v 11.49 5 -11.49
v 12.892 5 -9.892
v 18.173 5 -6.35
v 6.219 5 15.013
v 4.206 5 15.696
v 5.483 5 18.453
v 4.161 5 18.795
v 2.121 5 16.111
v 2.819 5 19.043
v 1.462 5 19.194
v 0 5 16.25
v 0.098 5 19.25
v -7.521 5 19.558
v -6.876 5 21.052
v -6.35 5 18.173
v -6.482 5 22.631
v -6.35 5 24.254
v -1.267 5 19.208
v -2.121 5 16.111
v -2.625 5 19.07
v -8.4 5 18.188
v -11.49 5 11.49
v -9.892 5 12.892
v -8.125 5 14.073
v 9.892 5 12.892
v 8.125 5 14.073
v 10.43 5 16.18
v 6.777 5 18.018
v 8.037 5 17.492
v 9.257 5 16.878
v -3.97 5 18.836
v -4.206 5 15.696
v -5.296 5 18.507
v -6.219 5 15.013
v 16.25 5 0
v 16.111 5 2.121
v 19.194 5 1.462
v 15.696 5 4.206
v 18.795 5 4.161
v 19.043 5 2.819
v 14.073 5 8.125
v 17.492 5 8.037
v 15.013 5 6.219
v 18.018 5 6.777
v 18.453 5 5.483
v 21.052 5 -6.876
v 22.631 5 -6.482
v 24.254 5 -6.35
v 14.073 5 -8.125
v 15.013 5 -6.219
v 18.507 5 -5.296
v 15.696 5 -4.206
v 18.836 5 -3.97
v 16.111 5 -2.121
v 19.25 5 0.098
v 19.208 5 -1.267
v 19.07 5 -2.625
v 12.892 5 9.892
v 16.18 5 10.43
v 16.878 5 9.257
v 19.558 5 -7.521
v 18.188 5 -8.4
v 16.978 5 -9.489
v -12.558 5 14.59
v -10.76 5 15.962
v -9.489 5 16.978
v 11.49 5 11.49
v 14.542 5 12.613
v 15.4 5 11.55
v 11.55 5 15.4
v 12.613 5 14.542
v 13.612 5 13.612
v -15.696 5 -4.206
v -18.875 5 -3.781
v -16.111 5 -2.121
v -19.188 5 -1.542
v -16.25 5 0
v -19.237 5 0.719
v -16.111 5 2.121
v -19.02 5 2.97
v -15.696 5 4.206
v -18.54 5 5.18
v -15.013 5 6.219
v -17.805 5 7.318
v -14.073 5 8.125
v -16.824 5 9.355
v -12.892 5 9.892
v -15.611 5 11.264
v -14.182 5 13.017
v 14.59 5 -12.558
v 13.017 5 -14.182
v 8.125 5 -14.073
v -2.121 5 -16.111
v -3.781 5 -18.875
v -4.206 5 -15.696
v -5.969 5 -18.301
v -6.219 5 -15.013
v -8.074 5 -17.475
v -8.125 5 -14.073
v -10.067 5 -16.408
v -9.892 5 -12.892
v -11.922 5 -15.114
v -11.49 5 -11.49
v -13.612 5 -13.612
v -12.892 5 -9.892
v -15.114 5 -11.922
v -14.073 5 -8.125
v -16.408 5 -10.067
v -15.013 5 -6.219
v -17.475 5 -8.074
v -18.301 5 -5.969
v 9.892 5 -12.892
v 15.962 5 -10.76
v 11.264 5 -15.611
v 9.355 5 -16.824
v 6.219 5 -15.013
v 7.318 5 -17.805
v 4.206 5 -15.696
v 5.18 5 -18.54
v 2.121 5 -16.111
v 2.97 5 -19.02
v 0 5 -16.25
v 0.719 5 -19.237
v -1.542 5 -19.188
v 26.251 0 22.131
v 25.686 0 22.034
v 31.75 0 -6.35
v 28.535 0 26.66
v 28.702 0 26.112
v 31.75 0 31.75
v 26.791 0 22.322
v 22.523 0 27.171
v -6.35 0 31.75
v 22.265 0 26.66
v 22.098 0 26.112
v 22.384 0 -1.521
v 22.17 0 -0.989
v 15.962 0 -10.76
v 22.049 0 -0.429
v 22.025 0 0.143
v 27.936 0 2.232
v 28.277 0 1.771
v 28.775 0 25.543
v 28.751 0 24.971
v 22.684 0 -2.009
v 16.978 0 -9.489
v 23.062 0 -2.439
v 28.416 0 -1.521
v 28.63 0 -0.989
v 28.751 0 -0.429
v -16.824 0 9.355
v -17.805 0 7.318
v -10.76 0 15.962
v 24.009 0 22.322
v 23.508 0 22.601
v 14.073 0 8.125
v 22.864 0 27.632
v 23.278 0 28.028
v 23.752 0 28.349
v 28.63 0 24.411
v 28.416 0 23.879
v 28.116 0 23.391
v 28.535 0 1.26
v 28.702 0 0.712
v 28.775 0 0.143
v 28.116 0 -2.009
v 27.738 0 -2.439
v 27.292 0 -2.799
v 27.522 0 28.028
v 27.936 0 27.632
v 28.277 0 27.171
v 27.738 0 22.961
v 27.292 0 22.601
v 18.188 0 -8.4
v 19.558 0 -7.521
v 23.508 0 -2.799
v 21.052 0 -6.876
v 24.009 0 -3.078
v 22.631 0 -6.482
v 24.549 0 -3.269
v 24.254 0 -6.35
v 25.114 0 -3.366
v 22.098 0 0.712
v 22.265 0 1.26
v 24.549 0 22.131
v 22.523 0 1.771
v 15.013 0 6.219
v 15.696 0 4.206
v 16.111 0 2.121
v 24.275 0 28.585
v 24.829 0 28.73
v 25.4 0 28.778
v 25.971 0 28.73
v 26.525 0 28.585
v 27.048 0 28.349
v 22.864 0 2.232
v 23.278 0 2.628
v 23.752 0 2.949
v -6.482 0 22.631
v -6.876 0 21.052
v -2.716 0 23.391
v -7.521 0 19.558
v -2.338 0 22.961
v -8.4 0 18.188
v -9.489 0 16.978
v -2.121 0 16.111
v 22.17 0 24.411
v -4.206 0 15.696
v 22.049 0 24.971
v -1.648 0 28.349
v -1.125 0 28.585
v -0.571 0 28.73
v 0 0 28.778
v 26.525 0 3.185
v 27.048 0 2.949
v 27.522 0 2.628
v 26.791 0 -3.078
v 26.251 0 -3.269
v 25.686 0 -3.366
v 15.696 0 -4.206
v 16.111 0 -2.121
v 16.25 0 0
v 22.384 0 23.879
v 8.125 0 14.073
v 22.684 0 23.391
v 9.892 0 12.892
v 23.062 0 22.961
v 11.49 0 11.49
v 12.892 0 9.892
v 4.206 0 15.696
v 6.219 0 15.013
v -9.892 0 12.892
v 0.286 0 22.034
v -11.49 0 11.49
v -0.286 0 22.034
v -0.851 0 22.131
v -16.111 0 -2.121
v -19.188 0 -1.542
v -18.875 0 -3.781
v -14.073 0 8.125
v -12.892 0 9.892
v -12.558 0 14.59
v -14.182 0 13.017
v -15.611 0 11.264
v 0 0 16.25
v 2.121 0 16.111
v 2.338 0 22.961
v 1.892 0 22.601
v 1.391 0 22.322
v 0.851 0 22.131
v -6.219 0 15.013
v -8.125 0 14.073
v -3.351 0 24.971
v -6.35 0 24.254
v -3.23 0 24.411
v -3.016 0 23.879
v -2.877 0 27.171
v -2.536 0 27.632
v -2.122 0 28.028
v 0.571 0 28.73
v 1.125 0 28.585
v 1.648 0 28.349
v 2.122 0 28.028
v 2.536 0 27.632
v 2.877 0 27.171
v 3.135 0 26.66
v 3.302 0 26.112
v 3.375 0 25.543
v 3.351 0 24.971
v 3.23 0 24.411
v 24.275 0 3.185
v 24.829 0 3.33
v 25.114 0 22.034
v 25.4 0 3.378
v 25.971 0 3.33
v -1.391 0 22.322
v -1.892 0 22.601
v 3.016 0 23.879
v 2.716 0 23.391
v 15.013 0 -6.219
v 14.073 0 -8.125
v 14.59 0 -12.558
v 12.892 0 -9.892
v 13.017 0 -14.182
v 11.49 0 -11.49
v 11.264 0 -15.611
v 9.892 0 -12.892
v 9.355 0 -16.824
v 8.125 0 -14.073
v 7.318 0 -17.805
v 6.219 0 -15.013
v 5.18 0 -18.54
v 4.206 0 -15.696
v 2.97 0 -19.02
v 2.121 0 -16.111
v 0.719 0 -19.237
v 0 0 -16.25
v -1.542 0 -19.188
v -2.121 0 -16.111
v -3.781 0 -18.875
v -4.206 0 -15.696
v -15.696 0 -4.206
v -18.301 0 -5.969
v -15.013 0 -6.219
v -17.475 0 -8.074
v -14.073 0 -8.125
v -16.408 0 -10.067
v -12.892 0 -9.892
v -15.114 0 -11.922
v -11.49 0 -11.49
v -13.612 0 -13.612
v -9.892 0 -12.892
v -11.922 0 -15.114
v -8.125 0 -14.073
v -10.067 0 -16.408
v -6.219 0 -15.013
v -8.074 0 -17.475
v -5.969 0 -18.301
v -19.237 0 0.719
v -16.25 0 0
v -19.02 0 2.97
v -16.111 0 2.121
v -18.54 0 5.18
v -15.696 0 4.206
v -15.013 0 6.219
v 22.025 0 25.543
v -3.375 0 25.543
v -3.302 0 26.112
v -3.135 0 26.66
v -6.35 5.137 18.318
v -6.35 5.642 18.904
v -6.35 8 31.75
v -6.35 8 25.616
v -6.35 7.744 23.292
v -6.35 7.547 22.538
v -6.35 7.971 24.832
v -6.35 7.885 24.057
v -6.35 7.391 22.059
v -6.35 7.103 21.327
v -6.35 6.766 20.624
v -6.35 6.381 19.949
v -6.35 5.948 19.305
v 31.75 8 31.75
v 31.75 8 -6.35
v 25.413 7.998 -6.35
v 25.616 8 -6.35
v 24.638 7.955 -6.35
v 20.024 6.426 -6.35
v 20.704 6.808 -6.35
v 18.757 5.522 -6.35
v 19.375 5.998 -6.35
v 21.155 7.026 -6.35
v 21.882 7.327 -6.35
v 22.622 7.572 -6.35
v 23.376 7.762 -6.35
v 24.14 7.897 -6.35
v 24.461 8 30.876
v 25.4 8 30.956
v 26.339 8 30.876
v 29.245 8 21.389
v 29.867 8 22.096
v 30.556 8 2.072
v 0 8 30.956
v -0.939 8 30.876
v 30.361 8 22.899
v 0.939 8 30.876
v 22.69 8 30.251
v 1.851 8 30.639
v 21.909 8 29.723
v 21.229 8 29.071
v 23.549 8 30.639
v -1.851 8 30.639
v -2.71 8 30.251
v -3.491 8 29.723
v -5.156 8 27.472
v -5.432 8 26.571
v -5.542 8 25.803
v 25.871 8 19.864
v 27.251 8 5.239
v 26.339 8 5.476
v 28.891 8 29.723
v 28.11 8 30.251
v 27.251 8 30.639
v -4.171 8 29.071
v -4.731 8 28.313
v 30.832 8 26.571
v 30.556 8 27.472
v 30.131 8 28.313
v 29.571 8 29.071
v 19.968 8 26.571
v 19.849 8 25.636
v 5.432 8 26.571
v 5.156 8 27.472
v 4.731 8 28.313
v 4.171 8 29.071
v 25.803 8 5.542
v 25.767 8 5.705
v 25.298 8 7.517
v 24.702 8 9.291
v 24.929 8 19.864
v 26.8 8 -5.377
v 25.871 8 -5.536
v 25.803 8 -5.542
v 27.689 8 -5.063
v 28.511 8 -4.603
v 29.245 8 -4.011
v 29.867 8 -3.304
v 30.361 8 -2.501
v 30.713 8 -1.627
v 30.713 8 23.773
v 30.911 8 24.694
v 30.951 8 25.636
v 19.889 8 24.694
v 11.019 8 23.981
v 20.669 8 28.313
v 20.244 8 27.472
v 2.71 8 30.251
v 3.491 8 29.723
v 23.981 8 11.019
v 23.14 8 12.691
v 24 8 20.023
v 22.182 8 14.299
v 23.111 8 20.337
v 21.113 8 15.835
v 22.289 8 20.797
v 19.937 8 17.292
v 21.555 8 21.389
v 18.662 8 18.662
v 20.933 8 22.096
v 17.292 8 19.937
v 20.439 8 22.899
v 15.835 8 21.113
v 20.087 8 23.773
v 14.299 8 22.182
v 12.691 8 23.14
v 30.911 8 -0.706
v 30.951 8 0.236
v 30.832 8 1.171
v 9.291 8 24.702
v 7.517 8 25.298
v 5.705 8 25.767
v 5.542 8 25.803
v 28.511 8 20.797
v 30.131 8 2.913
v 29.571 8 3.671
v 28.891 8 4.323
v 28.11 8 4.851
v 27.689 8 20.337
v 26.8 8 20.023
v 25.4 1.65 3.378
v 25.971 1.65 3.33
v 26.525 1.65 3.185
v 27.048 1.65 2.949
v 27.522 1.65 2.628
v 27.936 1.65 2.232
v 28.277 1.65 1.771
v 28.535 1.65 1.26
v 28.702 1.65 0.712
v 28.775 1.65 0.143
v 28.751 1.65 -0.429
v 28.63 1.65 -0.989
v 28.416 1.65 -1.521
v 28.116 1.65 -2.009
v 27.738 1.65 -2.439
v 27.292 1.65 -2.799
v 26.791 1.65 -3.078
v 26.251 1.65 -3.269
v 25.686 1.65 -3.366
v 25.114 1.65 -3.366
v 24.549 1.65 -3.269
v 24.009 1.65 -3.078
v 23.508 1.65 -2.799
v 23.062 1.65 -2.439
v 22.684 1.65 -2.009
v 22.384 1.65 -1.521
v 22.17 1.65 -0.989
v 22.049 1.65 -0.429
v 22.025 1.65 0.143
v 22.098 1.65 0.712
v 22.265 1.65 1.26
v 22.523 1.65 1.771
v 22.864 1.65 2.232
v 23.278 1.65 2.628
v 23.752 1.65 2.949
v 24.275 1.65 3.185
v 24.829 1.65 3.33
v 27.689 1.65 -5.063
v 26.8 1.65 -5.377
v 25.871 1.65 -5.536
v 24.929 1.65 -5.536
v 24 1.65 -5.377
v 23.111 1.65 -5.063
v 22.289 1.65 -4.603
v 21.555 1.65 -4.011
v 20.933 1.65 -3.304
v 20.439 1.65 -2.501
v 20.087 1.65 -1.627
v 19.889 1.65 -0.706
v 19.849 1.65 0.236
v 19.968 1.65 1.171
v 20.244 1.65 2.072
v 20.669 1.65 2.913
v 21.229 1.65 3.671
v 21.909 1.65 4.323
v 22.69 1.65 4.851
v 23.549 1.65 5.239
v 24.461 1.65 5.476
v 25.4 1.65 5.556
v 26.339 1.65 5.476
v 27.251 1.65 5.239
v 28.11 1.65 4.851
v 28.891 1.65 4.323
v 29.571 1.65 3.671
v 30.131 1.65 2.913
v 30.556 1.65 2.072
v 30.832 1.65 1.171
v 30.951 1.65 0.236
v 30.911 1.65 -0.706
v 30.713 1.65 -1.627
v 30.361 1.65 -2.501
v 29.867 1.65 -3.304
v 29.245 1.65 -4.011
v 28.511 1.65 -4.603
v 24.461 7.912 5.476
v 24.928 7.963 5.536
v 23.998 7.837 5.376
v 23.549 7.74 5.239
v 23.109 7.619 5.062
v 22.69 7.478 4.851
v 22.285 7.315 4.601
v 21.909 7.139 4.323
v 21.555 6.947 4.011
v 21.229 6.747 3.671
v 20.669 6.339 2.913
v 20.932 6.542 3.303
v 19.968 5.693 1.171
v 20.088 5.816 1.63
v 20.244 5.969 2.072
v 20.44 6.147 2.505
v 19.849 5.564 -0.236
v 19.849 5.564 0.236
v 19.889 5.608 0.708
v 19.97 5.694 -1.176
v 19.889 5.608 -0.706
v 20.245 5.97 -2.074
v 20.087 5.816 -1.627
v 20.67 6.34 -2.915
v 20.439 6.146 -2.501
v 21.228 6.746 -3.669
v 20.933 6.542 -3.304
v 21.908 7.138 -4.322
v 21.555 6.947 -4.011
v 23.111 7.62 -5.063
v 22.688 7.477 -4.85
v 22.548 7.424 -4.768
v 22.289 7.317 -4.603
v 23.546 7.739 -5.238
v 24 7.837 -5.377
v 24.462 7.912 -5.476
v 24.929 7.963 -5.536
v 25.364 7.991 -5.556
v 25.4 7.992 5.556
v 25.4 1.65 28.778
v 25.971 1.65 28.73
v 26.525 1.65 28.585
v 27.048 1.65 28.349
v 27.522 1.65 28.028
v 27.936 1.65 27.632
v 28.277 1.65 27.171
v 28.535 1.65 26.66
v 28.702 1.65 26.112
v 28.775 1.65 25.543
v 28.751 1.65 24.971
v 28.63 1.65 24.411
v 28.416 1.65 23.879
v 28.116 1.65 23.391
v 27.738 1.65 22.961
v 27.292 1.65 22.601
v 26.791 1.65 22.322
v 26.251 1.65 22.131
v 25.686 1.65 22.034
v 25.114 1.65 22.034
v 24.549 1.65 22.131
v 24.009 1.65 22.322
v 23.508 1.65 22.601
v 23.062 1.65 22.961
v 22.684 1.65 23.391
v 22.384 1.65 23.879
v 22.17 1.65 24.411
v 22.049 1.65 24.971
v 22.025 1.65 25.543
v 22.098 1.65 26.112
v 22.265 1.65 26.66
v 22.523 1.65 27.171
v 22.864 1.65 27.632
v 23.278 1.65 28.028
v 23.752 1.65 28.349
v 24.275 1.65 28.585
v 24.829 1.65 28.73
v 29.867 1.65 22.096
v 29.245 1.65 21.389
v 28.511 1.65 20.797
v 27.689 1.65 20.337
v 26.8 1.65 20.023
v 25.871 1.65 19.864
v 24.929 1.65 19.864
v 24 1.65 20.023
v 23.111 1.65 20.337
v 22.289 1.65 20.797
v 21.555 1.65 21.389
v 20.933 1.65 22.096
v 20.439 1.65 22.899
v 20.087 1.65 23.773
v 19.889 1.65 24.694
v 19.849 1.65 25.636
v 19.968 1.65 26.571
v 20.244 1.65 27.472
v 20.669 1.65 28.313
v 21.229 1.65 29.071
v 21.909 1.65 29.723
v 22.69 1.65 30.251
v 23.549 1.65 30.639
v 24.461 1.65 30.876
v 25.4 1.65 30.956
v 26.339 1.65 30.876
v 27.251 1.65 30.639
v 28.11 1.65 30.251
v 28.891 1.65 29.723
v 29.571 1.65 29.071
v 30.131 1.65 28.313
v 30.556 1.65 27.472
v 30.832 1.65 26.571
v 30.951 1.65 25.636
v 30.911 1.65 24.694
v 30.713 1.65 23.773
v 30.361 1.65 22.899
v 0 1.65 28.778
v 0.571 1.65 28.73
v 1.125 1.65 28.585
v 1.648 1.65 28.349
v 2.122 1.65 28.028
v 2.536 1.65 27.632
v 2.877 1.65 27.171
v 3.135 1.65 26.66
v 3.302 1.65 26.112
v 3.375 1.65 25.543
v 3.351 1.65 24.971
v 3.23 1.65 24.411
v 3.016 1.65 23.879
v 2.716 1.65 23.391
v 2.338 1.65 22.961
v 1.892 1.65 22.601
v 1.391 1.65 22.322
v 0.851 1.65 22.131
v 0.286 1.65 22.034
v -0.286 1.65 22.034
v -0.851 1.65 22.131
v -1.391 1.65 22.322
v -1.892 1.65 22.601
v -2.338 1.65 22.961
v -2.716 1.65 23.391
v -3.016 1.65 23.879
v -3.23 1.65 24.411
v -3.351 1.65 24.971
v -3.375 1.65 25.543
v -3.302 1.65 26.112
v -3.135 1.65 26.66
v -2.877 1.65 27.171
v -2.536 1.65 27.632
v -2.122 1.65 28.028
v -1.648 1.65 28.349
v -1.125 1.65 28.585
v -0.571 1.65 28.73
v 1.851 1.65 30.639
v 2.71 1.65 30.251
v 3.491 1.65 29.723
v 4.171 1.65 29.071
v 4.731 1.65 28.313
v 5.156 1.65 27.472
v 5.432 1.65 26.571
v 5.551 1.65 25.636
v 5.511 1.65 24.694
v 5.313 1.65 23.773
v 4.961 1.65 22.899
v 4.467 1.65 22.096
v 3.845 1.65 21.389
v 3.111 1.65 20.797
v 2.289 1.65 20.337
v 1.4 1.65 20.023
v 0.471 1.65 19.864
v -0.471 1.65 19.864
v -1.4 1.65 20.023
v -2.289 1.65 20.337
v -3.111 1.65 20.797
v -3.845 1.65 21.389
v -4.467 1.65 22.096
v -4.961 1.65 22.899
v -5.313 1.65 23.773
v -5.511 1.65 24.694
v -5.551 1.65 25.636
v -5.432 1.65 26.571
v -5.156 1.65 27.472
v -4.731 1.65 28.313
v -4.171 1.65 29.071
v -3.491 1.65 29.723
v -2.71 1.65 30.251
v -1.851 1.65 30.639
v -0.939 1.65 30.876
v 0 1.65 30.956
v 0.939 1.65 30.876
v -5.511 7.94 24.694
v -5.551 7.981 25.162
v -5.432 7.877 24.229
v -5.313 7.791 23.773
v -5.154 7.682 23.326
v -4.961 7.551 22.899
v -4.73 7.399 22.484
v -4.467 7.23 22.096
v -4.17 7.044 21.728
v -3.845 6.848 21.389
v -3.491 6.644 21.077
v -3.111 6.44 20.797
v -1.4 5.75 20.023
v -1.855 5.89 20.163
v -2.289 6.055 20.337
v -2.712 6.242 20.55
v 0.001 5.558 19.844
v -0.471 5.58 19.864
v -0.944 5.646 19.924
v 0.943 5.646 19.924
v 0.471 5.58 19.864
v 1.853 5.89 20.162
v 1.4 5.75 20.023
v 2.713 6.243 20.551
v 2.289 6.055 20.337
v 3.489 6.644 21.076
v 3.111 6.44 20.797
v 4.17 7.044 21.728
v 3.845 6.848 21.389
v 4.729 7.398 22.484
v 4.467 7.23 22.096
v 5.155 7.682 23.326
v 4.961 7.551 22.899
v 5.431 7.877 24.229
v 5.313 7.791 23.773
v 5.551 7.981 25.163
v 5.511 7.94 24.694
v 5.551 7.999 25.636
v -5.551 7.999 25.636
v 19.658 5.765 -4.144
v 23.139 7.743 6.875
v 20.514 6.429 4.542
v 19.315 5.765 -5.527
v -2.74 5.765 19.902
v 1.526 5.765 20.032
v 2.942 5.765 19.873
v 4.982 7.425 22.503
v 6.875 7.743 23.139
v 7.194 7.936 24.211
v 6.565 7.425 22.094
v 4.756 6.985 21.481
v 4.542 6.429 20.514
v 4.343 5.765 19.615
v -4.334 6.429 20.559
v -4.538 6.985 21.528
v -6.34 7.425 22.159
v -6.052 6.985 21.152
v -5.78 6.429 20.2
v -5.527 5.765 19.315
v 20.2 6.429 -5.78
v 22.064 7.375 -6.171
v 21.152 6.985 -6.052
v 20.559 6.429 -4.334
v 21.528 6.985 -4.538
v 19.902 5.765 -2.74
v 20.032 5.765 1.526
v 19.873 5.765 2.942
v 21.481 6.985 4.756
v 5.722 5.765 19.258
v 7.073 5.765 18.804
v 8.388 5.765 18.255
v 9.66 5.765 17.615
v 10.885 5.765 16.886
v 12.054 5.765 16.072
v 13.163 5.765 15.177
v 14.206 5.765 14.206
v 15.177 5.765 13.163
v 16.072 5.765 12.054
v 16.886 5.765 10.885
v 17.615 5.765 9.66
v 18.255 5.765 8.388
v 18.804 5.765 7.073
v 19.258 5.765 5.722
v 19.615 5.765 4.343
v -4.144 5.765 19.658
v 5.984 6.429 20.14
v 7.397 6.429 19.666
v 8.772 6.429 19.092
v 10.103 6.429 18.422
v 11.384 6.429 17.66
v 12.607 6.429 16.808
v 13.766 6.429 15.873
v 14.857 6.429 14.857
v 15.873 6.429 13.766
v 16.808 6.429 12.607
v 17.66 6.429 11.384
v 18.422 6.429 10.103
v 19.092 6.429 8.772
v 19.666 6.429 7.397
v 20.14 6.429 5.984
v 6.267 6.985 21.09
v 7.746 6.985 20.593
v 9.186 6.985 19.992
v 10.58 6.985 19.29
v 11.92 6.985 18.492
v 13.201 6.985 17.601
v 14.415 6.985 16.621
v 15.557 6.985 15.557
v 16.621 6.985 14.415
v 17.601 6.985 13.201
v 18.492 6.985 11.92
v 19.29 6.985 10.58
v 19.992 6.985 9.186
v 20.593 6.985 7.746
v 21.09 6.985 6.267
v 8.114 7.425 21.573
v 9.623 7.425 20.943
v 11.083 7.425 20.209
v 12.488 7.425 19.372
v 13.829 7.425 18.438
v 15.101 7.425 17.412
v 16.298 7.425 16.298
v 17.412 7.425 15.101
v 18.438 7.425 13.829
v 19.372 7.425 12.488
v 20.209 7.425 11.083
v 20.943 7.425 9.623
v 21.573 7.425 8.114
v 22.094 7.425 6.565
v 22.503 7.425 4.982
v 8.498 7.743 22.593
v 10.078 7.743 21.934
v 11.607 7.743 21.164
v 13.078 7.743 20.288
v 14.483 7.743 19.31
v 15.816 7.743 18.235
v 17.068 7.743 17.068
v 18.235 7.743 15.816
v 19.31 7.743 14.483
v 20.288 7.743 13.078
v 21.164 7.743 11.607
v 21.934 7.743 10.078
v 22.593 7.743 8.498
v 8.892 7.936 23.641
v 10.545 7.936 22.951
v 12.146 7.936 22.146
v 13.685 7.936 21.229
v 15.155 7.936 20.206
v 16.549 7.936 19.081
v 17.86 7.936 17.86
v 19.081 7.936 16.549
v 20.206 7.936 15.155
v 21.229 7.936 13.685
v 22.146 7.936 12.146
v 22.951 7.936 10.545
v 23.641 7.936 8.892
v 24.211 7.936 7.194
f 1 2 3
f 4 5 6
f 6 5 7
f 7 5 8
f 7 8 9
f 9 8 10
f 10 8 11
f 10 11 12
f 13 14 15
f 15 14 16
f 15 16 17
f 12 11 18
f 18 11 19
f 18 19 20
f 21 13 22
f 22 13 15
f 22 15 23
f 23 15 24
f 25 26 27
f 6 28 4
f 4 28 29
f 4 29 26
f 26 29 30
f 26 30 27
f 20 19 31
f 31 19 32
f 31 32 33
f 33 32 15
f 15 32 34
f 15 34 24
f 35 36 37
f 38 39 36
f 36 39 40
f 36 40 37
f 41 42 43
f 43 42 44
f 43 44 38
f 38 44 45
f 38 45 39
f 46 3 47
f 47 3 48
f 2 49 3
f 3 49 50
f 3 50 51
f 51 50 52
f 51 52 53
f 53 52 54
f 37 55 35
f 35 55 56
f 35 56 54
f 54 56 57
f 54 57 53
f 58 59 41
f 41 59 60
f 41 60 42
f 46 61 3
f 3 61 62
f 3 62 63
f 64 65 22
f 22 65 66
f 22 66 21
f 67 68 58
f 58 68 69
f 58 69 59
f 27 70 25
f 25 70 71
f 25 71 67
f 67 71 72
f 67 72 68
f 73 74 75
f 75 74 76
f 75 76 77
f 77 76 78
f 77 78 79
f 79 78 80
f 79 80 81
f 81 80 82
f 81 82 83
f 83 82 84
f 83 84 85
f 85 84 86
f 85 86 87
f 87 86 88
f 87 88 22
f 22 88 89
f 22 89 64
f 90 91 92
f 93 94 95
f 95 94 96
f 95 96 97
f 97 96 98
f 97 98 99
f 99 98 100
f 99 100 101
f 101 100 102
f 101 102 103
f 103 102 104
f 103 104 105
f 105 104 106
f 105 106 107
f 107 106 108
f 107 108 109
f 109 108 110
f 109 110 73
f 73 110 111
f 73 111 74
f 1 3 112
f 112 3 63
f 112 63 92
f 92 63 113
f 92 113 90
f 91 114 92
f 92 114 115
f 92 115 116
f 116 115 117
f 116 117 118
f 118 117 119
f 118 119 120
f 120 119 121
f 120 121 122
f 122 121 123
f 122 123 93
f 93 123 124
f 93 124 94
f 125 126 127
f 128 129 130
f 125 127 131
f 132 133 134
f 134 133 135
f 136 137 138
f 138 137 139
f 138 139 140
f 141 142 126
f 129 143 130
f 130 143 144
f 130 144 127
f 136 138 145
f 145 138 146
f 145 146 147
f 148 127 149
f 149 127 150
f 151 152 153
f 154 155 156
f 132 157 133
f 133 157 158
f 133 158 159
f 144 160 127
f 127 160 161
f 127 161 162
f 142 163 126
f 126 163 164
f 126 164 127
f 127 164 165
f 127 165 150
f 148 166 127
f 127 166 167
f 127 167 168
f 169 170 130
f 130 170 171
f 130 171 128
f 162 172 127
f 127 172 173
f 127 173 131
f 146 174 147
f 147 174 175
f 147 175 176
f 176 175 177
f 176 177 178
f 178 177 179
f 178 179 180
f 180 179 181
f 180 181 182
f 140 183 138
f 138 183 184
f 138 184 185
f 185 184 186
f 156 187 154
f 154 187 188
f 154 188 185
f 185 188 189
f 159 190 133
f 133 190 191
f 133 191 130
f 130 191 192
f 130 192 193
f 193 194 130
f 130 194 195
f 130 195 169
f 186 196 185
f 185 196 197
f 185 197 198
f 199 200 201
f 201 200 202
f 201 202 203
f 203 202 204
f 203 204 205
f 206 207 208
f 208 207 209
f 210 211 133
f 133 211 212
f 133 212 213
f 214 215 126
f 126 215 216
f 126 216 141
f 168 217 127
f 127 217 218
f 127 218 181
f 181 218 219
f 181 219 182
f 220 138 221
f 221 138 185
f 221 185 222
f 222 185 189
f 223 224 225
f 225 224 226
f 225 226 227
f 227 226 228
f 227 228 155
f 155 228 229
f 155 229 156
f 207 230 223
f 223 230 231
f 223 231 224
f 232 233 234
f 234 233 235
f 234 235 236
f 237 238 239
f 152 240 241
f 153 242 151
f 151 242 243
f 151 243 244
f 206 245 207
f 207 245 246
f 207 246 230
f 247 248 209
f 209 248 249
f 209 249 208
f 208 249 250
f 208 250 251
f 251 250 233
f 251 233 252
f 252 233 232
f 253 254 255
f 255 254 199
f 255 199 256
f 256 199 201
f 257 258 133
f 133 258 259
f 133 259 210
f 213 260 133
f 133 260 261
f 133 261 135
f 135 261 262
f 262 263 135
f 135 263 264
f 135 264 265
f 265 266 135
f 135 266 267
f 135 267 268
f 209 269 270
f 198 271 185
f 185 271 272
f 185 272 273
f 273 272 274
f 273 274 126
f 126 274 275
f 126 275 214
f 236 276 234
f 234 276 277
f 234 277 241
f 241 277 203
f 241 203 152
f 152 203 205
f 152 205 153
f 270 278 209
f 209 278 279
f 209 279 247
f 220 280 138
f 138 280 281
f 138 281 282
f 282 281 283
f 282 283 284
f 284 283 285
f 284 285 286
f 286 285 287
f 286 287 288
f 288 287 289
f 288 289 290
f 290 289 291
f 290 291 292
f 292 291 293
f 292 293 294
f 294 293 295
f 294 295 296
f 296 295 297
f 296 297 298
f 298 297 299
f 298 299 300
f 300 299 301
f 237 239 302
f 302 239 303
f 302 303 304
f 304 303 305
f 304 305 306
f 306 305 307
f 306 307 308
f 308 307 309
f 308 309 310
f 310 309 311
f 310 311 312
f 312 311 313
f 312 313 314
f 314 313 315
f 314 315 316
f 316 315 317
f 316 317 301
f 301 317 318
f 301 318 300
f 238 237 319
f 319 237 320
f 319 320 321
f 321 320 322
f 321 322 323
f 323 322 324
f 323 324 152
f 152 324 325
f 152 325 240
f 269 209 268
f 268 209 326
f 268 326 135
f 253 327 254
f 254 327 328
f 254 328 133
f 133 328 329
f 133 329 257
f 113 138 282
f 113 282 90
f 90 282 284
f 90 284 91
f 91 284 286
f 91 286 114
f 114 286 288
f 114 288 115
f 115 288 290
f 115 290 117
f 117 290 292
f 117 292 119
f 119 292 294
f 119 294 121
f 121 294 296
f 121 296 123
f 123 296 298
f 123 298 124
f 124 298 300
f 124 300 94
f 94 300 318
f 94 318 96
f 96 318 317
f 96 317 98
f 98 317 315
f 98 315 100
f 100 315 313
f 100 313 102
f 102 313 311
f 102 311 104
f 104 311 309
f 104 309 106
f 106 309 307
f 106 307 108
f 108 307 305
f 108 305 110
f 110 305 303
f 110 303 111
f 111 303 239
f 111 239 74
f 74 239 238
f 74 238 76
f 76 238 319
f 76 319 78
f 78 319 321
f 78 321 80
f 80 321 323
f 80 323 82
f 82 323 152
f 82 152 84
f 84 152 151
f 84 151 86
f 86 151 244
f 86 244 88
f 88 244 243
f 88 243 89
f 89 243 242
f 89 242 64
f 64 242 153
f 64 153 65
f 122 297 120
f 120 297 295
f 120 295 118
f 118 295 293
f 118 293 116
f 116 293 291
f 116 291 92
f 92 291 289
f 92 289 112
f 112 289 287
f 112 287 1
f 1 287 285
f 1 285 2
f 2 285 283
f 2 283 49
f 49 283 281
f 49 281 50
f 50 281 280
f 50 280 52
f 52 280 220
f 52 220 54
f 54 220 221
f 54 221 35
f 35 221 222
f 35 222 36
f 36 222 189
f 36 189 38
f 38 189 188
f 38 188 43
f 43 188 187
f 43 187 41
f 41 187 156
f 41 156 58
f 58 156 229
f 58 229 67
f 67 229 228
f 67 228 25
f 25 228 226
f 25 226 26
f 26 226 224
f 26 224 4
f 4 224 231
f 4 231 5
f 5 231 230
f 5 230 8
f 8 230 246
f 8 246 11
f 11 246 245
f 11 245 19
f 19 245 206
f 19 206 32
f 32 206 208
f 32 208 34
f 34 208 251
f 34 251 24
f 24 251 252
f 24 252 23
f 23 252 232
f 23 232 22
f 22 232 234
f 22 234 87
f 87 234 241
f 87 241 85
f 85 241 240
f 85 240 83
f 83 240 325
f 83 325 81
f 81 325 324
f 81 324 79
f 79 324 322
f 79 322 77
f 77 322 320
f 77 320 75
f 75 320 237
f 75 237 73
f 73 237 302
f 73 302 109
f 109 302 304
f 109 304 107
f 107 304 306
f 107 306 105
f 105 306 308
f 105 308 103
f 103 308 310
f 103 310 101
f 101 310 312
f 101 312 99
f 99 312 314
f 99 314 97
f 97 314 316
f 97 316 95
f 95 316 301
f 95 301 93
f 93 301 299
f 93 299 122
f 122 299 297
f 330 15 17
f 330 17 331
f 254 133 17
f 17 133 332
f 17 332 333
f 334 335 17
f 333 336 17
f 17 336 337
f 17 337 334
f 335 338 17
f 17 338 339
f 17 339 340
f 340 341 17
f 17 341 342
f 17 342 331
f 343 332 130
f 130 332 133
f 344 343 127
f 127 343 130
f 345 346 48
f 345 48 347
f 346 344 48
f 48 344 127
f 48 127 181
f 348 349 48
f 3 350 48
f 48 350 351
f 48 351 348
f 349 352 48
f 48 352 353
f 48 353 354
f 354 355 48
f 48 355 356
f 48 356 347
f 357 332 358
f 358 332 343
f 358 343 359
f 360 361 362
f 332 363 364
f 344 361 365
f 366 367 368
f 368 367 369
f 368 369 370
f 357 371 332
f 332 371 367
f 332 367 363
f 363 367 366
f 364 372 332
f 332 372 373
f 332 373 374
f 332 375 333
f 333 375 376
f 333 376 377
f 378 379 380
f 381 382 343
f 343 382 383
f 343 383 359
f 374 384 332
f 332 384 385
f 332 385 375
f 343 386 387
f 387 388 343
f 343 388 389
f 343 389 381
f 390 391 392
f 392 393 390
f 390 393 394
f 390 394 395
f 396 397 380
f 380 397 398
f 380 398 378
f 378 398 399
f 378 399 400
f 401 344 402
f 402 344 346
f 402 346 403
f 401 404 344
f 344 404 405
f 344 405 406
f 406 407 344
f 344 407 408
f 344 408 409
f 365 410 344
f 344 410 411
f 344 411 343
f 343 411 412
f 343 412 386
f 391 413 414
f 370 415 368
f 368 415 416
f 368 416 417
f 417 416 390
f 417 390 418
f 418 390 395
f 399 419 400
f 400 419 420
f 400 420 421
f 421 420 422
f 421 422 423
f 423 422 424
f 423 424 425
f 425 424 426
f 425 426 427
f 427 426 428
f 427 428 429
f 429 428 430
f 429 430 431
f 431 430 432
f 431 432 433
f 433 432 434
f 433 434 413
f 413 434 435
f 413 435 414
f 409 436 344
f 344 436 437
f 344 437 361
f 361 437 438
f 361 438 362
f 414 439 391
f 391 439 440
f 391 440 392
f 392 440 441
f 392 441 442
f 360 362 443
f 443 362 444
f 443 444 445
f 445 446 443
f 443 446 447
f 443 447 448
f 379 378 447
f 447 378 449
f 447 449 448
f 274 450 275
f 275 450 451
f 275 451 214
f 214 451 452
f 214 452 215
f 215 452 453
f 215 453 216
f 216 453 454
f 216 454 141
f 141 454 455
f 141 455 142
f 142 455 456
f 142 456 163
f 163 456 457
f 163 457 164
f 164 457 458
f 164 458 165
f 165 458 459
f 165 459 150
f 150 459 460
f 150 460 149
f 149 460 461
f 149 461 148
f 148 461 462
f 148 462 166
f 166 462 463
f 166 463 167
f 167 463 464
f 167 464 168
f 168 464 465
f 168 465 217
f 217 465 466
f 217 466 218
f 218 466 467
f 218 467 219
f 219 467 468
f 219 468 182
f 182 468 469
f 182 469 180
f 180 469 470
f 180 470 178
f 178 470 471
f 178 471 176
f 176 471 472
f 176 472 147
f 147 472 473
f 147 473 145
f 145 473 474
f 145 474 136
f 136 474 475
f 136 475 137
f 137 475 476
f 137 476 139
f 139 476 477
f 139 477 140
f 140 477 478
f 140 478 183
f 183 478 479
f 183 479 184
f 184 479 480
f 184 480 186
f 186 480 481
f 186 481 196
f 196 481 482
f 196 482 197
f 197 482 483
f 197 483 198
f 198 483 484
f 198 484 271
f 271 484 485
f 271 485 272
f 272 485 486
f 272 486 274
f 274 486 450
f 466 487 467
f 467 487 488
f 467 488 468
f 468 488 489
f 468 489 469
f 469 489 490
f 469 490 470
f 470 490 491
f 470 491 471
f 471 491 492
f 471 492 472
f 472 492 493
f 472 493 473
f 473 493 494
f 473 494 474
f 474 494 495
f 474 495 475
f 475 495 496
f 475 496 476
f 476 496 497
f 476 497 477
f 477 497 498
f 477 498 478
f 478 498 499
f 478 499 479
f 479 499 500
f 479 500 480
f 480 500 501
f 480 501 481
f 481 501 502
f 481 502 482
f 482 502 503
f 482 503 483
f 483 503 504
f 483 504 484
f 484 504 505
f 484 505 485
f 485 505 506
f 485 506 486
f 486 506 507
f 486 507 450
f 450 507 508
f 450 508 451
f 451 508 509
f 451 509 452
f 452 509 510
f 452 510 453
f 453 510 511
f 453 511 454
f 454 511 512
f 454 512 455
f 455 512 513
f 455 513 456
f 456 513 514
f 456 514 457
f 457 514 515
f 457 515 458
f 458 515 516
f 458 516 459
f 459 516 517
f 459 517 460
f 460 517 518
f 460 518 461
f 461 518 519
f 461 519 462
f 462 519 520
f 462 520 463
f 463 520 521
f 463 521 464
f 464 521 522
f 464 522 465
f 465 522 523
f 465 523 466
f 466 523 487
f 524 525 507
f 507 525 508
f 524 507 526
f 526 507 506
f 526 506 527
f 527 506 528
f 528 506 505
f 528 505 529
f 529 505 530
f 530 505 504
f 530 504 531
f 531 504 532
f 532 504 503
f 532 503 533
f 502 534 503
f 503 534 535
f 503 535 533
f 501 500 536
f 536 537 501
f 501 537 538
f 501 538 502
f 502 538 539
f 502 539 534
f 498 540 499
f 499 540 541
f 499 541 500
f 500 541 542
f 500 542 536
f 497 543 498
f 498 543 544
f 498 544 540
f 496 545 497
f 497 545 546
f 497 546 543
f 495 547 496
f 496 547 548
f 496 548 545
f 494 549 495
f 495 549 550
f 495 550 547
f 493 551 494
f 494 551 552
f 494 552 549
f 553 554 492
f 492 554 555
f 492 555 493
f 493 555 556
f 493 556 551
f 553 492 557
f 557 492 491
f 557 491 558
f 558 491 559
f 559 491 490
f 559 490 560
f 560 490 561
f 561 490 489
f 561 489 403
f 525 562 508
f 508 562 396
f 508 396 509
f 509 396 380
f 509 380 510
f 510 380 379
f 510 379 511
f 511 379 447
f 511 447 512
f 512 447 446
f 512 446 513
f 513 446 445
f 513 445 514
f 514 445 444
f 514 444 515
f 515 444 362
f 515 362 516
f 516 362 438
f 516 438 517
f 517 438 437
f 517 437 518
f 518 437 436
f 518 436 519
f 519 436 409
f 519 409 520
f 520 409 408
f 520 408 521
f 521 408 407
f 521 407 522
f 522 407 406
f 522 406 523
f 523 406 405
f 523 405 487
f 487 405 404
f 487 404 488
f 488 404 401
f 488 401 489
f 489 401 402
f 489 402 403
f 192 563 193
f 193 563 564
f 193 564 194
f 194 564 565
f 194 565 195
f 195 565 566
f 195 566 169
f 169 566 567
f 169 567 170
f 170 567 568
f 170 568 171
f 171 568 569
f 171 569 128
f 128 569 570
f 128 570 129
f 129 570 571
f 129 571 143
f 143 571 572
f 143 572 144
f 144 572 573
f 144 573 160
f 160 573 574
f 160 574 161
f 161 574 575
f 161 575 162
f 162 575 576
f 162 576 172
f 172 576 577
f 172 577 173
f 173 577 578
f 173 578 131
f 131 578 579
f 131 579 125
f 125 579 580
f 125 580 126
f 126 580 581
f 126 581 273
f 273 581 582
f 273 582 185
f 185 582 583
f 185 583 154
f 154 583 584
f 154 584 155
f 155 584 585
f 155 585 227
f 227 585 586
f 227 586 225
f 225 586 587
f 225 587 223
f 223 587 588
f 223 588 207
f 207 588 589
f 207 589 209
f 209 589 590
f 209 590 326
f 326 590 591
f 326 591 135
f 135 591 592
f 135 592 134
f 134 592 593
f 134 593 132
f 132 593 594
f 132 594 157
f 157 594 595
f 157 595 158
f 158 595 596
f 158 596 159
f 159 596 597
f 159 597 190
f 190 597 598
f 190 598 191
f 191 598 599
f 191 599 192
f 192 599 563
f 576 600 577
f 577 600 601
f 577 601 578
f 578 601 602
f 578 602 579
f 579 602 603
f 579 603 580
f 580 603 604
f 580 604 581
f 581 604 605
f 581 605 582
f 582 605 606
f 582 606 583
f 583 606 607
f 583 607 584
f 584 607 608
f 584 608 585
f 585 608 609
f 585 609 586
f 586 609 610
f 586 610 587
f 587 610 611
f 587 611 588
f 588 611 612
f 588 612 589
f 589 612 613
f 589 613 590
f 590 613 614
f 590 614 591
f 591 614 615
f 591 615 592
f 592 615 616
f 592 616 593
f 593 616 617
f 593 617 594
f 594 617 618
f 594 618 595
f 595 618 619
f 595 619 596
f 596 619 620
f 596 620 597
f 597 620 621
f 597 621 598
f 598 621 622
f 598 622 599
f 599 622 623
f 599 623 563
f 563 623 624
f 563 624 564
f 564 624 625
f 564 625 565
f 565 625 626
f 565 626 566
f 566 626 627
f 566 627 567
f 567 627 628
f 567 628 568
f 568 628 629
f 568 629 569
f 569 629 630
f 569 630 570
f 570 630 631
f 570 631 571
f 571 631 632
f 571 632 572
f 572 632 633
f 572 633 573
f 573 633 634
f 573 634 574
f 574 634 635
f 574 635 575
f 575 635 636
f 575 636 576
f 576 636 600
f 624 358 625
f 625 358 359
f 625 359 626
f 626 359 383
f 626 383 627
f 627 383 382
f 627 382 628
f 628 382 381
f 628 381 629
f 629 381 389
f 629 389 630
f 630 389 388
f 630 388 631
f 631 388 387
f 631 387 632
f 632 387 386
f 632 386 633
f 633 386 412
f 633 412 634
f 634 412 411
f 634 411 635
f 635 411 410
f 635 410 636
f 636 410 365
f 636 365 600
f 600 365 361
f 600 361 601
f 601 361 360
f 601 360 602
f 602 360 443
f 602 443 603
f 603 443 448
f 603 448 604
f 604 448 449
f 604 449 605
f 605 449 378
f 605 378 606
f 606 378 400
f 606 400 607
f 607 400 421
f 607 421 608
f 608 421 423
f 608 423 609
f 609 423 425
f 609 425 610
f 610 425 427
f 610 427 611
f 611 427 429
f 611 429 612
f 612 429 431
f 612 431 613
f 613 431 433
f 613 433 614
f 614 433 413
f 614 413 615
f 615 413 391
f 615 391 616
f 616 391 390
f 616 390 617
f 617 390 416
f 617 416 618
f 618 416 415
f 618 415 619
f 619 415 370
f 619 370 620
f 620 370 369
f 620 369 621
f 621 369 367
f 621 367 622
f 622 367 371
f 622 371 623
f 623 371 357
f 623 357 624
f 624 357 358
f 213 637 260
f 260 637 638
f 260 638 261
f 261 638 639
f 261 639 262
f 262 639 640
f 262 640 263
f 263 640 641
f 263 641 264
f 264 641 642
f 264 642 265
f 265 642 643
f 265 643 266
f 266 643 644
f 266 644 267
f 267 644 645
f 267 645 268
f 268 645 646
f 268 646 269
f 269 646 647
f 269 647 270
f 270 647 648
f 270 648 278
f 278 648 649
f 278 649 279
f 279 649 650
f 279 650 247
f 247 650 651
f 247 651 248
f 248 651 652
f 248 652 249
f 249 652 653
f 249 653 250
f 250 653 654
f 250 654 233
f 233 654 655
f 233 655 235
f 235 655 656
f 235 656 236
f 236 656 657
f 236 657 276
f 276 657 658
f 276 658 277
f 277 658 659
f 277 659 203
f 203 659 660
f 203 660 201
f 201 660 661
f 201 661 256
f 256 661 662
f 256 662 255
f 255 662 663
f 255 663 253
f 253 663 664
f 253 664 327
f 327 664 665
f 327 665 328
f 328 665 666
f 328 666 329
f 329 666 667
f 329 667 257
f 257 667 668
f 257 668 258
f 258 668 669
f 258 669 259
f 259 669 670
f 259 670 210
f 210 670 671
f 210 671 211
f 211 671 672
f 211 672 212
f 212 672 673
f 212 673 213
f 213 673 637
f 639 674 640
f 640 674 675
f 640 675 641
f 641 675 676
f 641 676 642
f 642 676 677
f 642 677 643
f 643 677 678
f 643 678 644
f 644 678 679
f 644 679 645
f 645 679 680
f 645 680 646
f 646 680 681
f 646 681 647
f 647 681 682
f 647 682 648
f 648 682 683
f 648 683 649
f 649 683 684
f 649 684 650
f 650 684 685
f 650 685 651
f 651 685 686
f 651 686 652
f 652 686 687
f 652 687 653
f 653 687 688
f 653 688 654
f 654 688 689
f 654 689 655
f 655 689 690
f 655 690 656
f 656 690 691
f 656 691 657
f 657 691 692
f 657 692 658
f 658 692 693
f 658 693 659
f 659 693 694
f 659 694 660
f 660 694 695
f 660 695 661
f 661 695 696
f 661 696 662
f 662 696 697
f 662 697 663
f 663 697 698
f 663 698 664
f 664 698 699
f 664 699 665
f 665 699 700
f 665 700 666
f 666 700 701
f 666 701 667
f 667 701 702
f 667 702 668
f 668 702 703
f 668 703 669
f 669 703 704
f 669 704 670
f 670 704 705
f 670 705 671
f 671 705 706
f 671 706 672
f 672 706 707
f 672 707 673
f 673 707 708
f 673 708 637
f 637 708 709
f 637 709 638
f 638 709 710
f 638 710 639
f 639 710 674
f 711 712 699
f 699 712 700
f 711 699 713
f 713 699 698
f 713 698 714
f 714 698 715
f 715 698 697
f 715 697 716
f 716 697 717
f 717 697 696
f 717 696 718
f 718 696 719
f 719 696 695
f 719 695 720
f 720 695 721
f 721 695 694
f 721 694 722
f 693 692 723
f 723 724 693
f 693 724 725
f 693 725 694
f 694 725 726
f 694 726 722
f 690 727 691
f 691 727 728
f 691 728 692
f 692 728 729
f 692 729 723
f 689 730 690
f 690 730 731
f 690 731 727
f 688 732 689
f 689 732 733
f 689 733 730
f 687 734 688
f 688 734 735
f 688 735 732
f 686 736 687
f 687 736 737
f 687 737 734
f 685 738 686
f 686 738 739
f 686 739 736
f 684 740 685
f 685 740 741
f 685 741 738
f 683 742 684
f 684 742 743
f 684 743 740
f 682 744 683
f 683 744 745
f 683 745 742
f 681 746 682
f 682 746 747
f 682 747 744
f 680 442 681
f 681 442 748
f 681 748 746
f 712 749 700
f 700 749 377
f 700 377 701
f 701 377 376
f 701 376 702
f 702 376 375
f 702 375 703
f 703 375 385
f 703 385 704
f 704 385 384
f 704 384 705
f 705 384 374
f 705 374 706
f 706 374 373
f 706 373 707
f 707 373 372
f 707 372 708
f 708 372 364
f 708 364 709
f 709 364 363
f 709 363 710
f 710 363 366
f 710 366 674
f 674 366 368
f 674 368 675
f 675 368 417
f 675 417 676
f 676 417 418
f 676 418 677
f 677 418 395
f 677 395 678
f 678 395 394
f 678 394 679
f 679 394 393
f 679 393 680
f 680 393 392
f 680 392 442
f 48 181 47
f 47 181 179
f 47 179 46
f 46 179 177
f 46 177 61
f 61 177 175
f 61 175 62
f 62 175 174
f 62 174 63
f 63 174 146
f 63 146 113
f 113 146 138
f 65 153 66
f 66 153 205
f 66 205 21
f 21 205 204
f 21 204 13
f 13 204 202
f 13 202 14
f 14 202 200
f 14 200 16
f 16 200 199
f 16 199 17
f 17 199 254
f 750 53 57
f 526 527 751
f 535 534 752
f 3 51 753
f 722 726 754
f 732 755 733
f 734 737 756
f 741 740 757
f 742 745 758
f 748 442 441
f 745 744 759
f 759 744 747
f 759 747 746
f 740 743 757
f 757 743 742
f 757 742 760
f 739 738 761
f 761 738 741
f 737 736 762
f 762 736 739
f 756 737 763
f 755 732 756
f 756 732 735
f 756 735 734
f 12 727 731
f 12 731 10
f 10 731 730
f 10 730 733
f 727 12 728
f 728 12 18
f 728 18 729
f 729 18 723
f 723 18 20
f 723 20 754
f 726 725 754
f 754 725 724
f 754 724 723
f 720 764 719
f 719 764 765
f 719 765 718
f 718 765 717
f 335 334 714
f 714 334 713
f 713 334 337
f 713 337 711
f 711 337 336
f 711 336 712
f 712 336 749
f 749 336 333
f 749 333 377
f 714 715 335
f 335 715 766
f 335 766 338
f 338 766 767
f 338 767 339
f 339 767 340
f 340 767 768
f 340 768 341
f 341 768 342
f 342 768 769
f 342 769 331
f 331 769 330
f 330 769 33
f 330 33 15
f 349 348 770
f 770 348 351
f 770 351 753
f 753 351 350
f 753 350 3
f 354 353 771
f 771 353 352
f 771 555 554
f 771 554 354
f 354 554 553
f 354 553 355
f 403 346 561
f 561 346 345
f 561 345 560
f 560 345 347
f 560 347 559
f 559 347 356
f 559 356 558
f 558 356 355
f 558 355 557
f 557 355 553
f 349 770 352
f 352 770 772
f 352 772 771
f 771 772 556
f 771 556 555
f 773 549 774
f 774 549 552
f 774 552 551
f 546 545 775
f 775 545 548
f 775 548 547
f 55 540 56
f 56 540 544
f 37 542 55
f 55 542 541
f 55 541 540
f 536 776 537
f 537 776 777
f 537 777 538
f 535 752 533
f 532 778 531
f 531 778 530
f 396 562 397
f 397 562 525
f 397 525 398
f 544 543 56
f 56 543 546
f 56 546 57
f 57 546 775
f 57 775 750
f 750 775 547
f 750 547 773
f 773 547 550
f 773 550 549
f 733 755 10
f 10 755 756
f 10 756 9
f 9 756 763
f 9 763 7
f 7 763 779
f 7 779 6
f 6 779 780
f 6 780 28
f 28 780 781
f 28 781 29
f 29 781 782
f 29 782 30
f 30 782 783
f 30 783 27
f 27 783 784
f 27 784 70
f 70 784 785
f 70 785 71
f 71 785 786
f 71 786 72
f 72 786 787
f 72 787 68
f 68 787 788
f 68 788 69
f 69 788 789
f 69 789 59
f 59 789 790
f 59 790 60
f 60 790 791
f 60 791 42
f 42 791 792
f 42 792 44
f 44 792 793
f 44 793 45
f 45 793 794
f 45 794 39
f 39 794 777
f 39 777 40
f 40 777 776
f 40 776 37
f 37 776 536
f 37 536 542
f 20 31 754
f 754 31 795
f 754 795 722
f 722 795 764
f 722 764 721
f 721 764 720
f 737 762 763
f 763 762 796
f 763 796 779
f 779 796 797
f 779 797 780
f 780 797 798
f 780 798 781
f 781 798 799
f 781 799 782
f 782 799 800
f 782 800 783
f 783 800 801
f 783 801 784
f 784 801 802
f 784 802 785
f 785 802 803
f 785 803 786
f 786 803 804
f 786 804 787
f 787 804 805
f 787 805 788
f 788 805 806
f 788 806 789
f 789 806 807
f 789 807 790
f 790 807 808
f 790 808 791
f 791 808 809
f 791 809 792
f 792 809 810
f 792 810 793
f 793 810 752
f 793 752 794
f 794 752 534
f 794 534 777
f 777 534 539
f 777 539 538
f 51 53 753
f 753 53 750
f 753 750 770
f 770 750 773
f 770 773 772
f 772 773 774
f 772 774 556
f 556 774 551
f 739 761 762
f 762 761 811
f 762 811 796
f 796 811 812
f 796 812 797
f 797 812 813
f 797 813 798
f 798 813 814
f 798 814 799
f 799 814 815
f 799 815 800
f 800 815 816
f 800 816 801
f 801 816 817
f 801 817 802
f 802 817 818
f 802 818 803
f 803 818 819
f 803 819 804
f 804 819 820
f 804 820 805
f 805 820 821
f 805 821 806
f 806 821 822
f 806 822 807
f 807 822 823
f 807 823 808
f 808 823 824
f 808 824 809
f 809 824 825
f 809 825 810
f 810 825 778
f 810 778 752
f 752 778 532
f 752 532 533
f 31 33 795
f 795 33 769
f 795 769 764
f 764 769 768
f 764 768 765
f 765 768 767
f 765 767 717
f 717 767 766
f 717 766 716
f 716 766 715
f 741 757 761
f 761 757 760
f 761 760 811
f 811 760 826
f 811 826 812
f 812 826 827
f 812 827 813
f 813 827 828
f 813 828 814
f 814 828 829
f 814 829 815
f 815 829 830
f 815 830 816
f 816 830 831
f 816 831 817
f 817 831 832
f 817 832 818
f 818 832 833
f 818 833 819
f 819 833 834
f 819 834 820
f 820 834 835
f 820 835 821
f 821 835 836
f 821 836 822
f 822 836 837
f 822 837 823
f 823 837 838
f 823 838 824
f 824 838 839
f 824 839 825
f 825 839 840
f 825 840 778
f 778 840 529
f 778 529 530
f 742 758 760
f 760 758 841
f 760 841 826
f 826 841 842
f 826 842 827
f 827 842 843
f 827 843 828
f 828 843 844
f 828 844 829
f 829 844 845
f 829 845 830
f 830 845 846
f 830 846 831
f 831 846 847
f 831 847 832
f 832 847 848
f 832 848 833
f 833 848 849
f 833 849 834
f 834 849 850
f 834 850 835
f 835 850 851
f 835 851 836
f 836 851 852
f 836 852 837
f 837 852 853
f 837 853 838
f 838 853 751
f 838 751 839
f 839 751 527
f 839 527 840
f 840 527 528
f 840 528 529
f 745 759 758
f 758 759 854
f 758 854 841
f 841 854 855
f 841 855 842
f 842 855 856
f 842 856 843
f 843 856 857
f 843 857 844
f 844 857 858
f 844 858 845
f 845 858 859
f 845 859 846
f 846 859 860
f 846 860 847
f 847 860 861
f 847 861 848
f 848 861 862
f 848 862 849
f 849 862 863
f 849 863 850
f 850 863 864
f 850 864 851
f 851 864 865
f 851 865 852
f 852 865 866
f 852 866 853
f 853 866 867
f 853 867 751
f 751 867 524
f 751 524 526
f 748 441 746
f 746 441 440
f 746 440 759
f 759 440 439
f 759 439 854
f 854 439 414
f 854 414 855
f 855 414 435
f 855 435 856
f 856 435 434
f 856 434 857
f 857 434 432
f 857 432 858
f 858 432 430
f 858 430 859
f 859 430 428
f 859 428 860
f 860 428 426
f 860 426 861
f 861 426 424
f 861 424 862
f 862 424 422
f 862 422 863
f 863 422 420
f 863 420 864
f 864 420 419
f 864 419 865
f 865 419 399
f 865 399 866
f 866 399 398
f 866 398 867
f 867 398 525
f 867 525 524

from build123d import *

# Parameters (mm, degrees)
SKETCH1_R                                        = 19.25
SKETCH1_R_2                                      = 16.25
BOSS_EXTRUDE1_DEPTH                              = 5
BOSS_EXTRUDE2_DEPTH                              = 8
CBORE_FOR_1_4_SOCKET_HEAD_CAP_SCREW2_D           = 6.7564
CBORE_FOR_1_4_SOCKET_HEAD_CAP_SCREW2_CBORE_D     = 11.1125
CBORE_FOR_1_4_SOCKET_HEAD_CAP_SCREW2_CBORE_DEPTH = 6.35
FILLET1_R                                        = 10


with BuildPart() as part:
    # Sketch1 → Boss-Extrude1 (new body)
    with BuildSketch(Plane(origin=(0, 0, 0), x_dir=(1, 0, 0), z_dir=(0, 1, 0))):
        with Locations(Location((0, 0, 0), (0, 0, 270))):
            Circle(SKETCH1_R)
        with Locations(Location((0, 0, 0), (0, 0, 270))):
            Circle(SKETCH1_R_2, mode=Mode.SUBTRACT)
    extrude(amount=BOSS_EXTRUDE1_DEPTH)

    # Sketch2 → Boss-Extrude2 (add)
    with BuildSketch(Plane(origin=(0, 0, 0), x_dir=(1, 0, 0), z_dir=(0, 1, 0))):
        with BuildLine():
            Line((-6.35, -31.75), (31.75, -31.75))
            Line((31.75, -31.75), (31.75, 6.35))
            Line((31.75, 6.35), (18.172506707, 6.35))
            ThreePointArc((18.172506707, 6.35), (18.978715105, 3.220383975), (19.25, 0))
            ThreePointArc((19.25, 0), (11.142822802, -15.697133496), (-6.35, -18.172506707))
            Line((-6.35, -18.172506707), (-6.35, -31.75))
        make_face()
    extrude(amount=BOSS_EXTRUDE2_DEPTH)

    # CBORE for 1/4 Socket Head Cap Screw2 (through all)
    with Locations(Plane(origin=(0, 8, 0), x_dir=(1, 0, 0), z_dir=(0, 1, 0))):
        with Locations((0, -25.4), (25.4, -25.4), (25.4, 0)):
            CounterBoreHole(CBORE_FOR_1_4_SOCKET_HEAD_CAP_SCREW2_D / 2, CBORE_FOR_1_4_SOCKET_HEAD_CAP_SCREW2_CBORE_D / 2, CBORE_FOR_1_4_SOCKET_HEAD_CAP_SCREW2_CBORE_DEPTH)

    # Fillet1
    # the kernel refuses this fillet: 10 mm, written as the material it adds along each edge
    with BuildSketch(Plane(origin=(18.172506707, 0, -6.35), x_dir=(-0.4481163543899531, 0, -0.8939752417870743), z_dir=(0, 1, 0))) as fillet1_piece_1:
        with BuildLine():
            CenterArc((6.21468839, -9.917563599), FILLET1_R, 97.362002187, 56.015102529)
            Line((-2.725064028, -5.436400055), (0, 0))
            ThreePointArc((0, 0), (2.46665467, -0.158690073), (4.93330934, 0))
        make_face()
    extrude(amount=5)
    with BuildSketch(Plane(origin=(-6.35, 0, 18.172506707), x_dir=(-0.8939752417870848, 0, -0.44811635438993225), z_dir=(0, 1, 0))) as fillet1_piece_2:
        with BuildLine():
            CenterArc((6.21468839, 9.917563599), FILLET1_R, 206.622895283, 56.015102529)
            Line((-2.725064028, 5.436400055), (0, 0))
            ThreePointArc((0, 0), (2.46665467, 0.158690073), (4.93330934, 0))
        make_face()
    extrude(amount=5)
    # the kernel refuses this fillet: 10 mm, written as the material it takes off along each edge
    with BuildSketch(Plane(origin=(0, 8, 0), x_dir=(-0.9534219544060213, 0, 0.3016398131159126), z_dir=(-0.3016398131159126, 0, -0.9534219544060213))) as fillet1_2_piece_1:
        with BuildLine():
            CenterArc((26.391428429, -10), FILLET1_R, 90, 45.572995999)
            Line((26.391428429, 0), (19.25, 0))
            Line((19.25, 0), (19.25, -3))
        make_face()
    revolve(axis=Axis((0, 8, 0), (0, 1, 0)), revolution_arc=234.887758498, mode=Mode.SUBTRACT)


solid = part.part
